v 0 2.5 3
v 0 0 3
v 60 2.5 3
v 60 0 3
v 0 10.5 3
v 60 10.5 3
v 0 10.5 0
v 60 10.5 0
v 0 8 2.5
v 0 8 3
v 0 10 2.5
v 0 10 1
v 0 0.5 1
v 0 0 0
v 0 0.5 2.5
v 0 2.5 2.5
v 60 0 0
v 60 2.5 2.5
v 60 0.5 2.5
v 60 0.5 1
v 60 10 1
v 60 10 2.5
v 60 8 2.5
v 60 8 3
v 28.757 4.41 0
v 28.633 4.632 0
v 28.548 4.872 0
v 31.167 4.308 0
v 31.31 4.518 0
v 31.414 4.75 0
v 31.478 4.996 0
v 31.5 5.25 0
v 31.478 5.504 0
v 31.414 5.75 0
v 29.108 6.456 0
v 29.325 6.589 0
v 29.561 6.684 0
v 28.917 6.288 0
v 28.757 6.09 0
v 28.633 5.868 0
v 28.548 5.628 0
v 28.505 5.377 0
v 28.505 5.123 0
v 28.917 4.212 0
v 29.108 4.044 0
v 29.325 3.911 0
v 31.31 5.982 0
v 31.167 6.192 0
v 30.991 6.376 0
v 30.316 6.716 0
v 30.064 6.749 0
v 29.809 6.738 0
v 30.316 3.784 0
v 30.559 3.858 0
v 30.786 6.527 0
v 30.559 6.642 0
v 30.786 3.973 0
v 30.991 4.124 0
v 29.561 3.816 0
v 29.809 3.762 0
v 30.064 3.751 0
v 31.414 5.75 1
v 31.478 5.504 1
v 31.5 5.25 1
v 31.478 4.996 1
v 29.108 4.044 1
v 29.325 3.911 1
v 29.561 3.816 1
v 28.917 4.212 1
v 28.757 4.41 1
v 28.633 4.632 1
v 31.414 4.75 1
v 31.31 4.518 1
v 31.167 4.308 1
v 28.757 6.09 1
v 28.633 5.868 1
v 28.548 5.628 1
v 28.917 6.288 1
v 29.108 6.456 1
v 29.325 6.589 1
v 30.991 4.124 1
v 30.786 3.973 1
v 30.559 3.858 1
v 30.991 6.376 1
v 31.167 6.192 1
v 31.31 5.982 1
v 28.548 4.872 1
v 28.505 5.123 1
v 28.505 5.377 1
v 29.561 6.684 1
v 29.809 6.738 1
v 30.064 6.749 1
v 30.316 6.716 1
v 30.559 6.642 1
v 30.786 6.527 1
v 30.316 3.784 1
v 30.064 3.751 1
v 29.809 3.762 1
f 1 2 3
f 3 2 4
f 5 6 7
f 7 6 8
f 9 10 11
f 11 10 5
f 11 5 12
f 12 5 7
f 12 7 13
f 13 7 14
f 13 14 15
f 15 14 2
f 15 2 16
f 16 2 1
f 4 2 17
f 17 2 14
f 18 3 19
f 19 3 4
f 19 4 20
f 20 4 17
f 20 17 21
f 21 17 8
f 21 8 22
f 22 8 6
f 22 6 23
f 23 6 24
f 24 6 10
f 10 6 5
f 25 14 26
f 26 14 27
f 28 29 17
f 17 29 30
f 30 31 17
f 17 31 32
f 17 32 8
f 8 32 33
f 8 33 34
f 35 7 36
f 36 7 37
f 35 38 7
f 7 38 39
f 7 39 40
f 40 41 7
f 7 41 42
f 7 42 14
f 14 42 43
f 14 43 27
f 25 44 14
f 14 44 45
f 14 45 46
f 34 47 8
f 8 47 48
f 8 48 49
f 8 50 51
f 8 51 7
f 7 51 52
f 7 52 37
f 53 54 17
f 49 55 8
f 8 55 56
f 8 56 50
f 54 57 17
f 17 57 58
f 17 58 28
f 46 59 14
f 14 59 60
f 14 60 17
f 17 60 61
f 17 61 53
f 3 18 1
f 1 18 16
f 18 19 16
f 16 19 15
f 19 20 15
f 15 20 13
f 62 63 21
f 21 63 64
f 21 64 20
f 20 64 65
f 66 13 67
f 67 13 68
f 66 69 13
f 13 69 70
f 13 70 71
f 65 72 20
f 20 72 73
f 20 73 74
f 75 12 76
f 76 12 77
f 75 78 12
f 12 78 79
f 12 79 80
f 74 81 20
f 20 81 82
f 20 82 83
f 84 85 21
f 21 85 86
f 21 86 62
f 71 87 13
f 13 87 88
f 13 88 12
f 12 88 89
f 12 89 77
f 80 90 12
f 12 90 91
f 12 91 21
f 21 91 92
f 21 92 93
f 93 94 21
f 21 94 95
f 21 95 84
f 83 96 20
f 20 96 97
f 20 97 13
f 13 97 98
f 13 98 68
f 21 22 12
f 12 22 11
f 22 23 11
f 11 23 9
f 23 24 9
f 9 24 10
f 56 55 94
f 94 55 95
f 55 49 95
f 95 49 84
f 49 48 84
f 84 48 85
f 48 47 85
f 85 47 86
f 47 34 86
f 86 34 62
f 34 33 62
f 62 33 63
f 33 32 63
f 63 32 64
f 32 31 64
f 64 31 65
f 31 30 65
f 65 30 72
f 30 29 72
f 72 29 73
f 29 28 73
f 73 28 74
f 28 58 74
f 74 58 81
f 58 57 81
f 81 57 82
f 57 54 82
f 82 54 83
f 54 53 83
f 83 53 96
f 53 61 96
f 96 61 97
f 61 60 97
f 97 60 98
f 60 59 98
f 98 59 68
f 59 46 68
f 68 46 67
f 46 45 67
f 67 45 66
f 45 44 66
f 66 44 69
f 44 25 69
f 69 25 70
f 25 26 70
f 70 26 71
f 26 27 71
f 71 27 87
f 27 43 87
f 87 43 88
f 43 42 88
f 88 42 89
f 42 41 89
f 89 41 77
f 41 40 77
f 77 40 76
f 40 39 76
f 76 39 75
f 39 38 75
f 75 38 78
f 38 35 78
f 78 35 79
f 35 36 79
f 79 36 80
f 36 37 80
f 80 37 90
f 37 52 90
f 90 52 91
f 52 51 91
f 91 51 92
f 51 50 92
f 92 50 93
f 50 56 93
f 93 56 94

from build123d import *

# Parameters (mm, degrees)
SKETCH1_W           = 59.999998659
SKETCH1_H           = 10.499999858
BOSS_EXTRUDE1_DEPTH = 3.000000026
CUT_EXTRUDE1_DEPTH  = 61.985652708
CUT_EXTRUDE2_DEPTH  = 61.944645671


with BuildPart() as part:
    # Sketch1 → Boss-Extrude1 (new body)
    with BuildSketch(Plane(origin=(0, 0, 0), x_dir=(-1, 0, 0), z_dir=(0, 0, -1))):
        with Locations((-29.99999933, 5.249999929)):
            Rectangle(SKETCH1_W, SKETCH1_H)
    extrude(amount=-BOSS_EXTRUDE1_DEPTH)

    # Sketch2 → Cut-Extrude1 (cut, through all)
    with BuildSketch(Plane.ZY):
        Polygon((3.000000026, 2.499999944), (3.000000026, 8.00000038), (2.499999944, 8.00000038), (2.499999944, 9.999999776), (1.000000047, 9.999999776), (1.000000047, 0.500000024), (2.499999944, 0.500000024), (2.499999944, 2.499999944), align=None)
    extrude(amount=-CUT_EXTRUDE1_DEPTH, mode=Mode.SUBTRACT)

    # Sketch3 → Cut-Extrude2 (cut, through all)
    with BuildSketch(Plane.XY.offset(1.000000047)):
        Polygon((30.559284613, 6.641833577), (30.316019431, 6.716332864), (30.063662678, 6.74864836), (29.809473082, 6.737850606), (29.560763389, 6.684250198), (29.324693605, 6.58938894), (29.108049348, 6.455995608), (28.917066753, 6.287908182), (28.757235035, 6.089962088), (28.633158654, 5.867851898), (28.548400849, 5.627966952), (28.505403548, 5.377208814), (28.505403548, 5.122791044), (28.548400849, 4.872032907), (28.633158654, 4.63214796), (28.757235035, 4.410037771), (28.917066753, 4.212091677), (29.108049348, 4.04400425), (29.324693605, 3.910611384), (29.560763389, 3.815749893), (29.809473082, 3.762149252), (30.063662678, 3.751351498), (30.316019431, 3.783667227), (30.559284613, 3.858166514), (30.786460266, 3.972706385), (30.991012231, 4.123991355), (31.167054549, 4.307670053), (31.309522688, 4.518457688), (31.414315104, 4.75029042), (31.478423625, 4.996498581), (31.500000507, 5.249999929), (31.478423625, 5.503501277), (31.414315104, 5.749709904), (31.309522688, 5.981542636), (31.167054549, 6.192329805), (30.991012231, 6.376008503), (30.786460266, 6.527293939), align=None)
    extrude(amount=-CUT_EXTRUDE2_DEPTH, mode=Mode.SUBTRACT)


solid = part.part
